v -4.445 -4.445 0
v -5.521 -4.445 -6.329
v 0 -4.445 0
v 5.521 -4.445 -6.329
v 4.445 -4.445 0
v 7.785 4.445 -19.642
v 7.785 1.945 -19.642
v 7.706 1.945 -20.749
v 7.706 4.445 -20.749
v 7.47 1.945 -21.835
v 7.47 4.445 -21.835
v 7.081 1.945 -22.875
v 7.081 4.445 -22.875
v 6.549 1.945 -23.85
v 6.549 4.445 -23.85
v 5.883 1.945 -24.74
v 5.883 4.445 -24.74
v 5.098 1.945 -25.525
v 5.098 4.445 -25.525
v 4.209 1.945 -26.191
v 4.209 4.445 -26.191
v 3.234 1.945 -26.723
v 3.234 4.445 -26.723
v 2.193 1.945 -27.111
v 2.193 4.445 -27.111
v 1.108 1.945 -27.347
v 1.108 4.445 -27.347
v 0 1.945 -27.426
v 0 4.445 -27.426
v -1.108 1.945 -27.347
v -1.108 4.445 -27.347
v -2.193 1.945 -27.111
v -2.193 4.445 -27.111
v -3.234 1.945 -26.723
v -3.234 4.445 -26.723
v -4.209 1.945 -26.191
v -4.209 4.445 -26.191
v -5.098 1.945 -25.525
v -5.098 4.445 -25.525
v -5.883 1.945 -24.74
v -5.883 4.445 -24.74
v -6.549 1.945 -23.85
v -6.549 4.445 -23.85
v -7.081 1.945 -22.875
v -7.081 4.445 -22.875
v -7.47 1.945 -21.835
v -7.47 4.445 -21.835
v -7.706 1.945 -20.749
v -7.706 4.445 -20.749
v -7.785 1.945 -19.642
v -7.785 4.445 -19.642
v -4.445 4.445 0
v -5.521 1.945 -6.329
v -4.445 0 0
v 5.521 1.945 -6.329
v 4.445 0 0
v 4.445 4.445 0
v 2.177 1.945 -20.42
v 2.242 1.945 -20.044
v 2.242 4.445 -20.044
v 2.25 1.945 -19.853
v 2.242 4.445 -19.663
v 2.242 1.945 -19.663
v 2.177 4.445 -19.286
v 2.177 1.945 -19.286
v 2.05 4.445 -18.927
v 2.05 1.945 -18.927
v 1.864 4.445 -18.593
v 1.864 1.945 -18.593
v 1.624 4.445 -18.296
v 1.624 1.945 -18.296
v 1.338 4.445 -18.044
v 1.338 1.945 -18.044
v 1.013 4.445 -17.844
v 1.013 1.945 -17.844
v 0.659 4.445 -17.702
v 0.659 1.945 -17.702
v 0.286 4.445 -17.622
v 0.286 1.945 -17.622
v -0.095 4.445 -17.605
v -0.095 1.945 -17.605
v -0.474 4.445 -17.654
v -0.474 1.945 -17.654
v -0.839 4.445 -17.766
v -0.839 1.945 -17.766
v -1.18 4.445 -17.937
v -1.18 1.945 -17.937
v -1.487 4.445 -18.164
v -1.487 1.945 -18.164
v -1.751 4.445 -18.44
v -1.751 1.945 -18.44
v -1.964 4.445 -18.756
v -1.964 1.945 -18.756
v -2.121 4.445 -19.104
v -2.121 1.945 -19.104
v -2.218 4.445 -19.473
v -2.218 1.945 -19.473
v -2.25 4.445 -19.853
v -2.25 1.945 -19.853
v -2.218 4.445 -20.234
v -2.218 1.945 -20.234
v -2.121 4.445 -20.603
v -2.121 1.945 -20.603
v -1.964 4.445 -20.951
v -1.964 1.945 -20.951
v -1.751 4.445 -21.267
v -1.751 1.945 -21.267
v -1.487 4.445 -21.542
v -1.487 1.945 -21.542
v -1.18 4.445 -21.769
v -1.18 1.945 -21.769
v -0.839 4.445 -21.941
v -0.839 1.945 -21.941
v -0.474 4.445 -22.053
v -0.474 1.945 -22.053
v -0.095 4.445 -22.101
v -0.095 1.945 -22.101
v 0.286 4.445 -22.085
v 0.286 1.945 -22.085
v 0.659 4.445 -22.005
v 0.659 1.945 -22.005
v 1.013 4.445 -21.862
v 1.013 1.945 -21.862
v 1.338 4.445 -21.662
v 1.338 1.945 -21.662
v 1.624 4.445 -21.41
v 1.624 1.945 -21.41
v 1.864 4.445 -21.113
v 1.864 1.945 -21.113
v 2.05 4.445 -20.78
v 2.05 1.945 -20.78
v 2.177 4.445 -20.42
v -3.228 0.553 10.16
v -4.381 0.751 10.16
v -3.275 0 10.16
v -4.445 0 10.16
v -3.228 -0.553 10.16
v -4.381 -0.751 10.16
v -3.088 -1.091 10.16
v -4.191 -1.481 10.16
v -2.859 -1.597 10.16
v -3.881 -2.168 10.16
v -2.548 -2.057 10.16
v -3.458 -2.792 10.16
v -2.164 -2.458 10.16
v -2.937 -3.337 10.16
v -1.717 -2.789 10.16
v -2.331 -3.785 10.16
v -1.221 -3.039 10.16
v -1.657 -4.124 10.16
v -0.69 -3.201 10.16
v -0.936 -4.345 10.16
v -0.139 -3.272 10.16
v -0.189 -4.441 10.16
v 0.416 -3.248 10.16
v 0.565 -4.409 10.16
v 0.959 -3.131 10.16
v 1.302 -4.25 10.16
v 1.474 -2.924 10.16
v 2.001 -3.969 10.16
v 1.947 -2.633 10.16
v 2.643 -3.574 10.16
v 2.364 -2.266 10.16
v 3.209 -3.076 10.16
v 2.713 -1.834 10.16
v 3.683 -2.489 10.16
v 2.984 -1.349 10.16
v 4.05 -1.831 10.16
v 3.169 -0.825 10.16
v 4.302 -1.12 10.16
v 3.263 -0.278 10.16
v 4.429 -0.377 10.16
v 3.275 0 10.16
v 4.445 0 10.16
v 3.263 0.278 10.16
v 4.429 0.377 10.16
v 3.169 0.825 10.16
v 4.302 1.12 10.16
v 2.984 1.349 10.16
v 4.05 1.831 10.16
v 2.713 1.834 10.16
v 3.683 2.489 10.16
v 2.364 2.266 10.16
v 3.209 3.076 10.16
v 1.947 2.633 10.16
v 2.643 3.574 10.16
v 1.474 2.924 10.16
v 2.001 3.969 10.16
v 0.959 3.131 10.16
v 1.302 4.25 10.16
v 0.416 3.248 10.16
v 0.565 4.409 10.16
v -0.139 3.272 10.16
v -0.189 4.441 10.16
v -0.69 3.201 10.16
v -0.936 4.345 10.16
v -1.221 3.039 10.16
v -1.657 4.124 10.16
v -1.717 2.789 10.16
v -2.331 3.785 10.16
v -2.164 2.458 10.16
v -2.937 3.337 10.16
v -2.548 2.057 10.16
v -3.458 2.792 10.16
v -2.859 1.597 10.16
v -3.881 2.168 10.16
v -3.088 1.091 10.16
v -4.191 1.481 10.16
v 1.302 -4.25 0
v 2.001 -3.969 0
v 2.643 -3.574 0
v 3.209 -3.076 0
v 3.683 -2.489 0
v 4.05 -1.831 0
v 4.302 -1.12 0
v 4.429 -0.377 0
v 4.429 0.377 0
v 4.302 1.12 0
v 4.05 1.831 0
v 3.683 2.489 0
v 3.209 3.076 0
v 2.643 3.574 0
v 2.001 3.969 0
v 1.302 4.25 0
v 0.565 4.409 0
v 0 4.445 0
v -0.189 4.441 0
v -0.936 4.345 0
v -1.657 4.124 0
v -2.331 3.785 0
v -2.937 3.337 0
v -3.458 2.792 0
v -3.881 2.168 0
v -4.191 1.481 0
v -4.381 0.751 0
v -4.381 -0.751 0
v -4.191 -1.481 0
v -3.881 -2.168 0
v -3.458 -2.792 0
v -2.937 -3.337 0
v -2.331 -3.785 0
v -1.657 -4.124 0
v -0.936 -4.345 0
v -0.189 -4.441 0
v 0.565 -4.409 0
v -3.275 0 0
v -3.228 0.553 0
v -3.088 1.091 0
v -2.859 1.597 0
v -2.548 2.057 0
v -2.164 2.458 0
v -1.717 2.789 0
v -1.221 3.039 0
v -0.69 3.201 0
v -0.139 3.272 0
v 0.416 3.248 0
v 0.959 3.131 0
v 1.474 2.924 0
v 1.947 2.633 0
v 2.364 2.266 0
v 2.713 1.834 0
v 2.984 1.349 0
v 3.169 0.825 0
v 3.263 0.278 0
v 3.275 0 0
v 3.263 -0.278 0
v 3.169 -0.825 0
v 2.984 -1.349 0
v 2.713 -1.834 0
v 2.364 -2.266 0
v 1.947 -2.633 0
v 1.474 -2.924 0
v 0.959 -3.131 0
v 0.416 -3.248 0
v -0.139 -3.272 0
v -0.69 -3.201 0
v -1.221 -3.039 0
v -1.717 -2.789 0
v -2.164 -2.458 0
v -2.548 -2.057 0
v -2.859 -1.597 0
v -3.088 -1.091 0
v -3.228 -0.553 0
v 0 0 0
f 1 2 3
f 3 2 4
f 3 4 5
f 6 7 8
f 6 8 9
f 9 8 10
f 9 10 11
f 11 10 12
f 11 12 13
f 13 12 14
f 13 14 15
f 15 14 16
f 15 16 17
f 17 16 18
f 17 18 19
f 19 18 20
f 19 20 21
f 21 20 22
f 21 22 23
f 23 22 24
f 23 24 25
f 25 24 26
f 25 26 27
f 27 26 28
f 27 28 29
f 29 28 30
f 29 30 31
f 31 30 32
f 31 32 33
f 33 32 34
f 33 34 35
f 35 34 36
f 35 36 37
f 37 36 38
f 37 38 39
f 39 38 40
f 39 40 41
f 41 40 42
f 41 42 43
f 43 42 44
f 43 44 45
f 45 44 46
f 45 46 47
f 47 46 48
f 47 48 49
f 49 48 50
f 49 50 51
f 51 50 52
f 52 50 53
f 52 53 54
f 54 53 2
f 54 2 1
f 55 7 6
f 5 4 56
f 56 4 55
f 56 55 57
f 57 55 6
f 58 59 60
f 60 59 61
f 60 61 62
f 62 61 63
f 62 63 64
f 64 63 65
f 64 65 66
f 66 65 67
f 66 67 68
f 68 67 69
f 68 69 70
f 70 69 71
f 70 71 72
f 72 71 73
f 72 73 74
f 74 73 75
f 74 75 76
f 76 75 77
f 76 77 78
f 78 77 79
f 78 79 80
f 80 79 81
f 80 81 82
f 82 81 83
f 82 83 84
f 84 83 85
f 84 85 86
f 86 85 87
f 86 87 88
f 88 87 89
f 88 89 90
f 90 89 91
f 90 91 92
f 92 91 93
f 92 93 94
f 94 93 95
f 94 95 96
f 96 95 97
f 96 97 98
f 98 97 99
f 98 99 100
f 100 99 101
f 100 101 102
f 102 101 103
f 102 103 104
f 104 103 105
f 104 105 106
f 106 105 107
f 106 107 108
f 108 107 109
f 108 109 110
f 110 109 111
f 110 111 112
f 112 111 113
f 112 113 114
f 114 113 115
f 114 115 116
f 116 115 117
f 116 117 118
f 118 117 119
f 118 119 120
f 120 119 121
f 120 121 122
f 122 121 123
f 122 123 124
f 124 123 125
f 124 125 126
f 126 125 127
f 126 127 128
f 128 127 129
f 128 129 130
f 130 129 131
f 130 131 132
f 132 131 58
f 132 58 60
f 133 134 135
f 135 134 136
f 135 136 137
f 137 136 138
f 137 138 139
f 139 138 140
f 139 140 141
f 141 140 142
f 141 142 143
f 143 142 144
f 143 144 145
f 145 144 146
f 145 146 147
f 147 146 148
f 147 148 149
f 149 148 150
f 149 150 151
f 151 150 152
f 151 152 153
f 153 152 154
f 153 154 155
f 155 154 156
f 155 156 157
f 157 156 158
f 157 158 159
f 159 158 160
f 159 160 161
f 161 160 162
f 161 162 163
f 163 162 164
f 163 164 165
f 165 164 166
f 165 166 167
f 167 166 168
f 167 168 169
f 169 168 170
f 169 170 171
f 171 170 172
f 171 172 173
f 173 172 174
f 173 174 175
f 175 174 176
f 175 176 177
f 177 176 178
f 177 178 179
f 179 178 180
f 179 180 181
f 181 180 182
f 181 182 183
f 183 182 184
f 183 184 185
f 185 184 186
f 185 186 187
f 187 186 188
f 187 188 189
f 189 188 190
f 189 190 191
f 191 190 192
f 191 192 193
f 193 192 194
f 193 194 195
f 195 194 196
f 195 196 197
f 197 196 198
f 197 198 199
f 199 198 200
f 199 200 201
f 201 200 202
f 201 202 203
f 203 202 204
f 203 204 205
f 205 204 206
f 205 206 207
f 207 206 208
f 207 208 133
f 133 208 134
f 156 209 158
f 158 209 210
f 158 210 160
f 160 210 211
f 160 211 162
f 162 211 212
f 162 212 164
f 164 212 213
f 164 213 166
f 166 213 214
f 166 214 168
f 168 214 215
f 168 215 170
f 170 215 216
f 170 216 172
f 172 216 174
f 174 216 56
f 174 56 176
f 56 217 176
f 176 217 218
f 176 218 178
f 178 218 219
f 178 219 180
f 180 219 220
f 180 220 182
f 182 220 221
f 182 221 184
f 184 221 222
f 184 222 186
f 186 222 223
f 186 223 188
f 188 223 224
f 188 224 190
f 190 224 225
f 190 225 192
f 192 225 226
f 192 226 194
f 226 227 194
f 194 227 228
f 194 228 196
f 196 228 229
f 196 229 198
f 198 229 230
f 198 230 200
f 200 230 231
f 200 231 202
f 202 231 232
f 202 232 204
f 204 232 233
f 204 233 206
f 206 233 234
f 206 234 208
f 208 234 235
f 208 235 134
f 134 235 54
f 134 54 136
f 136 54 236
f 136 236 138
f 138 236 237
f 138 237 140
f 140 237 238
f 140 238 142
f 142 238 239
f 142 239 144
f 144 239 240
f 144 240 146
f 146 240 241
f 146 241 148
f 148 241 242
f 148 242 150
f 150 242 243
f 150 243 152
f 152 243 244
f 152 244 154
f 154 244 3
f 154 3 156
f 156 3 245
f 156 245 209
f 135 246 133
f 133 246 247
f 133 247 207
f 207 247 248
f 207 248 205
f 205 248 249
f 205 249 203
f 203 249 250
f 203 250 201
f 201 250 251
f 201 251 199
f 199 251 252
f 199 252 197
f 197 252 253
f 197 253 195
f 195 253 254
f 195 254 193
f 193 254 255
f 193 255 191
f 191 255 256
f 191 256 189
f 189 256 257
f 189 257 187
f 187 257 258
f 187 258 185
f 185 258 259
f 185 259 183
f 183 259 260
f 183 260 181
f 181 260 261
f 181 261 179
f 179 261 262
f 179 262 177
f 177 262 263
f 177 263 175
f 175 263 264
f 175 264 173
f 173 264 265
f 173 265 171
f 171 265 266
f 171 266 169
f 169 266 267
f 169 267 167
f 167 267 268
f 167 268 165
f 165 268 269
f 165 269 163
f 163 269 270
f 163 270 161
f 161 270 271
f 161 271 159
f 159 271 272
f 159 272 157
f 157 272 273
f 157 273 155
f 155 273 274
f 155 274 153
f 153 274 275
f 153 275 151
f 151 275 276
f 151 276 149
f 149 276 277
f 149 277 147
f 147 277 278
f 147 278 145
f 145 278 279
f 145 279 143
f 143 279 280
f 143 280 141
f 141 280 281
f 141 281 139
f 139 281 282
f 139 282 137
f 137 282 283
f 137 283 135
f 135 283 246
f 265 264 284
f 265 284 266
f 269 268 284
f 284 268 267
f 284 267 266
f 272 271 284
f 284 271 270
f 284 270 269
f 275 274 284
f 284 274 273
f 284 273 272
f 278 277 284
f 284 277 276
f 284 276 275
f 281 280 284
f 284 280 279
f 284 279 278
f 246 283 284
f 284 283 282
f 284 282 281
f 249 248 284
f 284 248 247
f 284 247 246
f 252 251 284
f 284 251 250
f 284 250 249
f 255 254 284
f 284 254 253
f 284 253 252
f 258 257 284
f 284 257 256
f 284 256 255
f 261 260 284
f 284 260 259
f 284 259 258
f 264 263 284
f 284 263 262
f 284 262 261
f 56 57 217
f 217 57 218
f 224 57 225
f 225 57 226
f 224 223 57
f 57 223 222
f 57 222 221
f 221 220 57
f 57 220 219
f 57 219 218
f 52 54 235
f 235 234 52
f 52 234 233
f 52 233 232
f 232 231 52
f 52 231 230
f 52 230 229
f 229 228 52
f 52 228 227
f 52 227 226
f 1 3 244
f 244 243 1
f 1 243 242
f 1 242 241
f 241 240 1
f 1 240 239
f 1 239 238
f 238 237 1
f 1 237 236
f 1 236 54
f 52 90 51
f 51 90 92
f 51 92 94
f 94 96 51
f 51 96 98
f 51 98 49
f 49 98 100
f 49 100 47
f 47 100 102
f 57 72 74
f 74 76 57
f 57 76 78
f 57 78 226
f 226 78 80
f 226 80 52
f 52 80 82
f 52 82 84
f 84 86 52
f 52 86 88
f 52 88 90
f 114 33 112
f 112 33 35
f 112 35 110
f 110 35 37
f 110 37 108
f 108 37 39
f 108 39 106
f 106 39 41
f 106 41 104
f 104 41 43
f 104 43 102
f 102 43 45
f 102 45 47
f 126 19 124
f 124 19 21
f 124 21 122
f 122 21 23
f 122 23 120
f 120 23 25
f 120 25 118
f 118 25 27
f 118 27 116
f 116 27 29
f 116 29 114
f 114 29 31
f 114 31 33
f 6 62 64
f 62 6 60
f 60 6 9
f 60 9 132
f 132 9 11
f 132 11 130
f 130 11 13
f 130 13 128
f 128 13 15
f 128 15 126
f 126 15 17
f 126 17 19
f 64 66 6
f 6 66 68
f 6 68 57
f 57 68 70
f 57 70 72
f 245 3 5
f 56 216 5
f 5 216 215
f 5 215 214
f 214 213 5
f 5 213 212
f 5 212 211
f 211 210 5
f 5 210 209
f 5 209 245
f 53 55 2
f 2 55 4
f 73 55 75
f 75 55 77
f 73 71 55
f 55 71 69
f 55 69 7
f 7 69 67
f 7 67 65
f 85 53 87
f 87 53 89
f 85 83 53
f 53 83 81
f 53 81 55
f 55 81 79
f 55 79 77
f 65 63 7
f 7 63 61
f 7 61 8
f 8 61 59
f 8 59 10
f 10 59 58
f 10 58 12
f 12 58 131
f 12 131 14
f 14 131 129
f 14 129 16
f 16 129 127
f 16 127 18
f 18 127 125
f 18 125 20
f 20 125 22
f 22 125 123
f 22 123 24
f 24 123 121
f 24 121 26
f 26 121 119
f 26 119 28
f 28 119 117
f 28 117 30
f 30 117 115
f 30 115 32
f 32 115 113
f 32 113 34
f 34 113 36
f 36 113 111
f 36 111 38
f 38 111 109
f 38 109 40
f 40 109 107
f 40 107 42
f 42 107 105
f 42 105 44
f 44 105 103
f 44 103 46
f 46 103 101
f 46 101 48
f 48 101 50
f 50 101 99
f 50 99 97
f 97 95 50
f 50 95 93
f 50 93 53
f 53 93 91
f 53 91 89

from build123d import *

# Parameters (mm, degrees)
SKETCH1_R           = 4.445
SKETCH1_R_2         = 3.275000003
BOSS_EXTRUDE1_DEPTH = 10.16
SKETCH2_W           = 8.89
SKETCH2_H           = 8.89
BOSS_EXTRUDE2_DEPTH = 25.4
BOSS_EXTRUDE3_REACH = 29.275
SKETCH9_R           = 2.2499955
CUT_EXTRUDE1_DEPTH  = 30.863820986
SKETCH11_R          = 2.2499955
CUT_EXTRUDE4_DEPTH  = 6.38999992


with BuildPart() as part:
    # Sketch1 → Boss-Extrude1 (new body)
    with BuildSketch(Plane.XY):
        Circle(SKETCH1_R)
        Circle(SKETCH1_R_2, mode=Mode.SUBTRACT)
    extrude(amount=BOSS_EXTRUDE1_DEPTH)

    # Sketch2 → Boss-Extrude2 (add)
    with BuildSketch(Plane(origin=(0, 0, 0), x_dir=(-1, 0, 0), z_dir=(0, 0, -1))):
        Rectangle(SKETCH2_W, SKETCH2_H)
    extrude(amount=BOSS_EXTRUDE2_DEPTH)

    # Boss-Extrude3: up to this face of the body (flat: up to its plane)
    boss_extrude3_end = Plane(part.part.faces().sort_by_distance((0, 4.445, -12.7))[0])
    # Sketch8 → Boss-Extrude3 (add, up to the picked face)
    with BuildSketch(Plane(origin=(0, -4.445, 0), x_dir=(-1, 0, 0), z_dir=(0, -1, 0)), mode=Mode.PRIVATE) as boss_extrude3_sk1:
        with BuildLine():
            Line((7.784941034, 19.641513294), (4.445, 0))
            Line((4.445, 0), (-4.445, 0))
            Line((-4.445, 0), (-7.784941034, 19.641513294))
            ThreePointArc((-7.784941034, 19.641513294), (0, 27.426454328), (7.784941034, 19.641513294))
        make_face()
    boss_extrude3_tool1 = split(extrude(boss_extrude3_sk1.sketch, amount=-BOSS_EXTRUDE3_REACH, mode=Mode.PRIVATE), bisect_by=boss_extrude3_end, keep=Keep.BOTH, mode=Mode.PRIVATE)
    add(boss_extrude3_tool1.solids().sort_by(Axis((0, -4.445, -14.186159), (0, 1, 0)))[0])

    # Sketch9 → Cut-Extrude1 (cut, through all)
    with BuildSketch(Plane(origin=(0, 4.445, 0), x_dir=(1, 0, 0), z_dir=(0, 1, 0))):
        with Locations(Location((0, 19.853346126, 0), (0, 0, 180))):
            Circle(SKETCH9_R)
    extrude(amount=-CUT_EXTRUDE1_DEPTH, mode=Mode.SUBTRACT)

    # Sketch11 → Cut-Extrude4 (cut)
    with BuildSketch(Plane.XZ.offset(4.445)):
        with BuildLine():
            Line((5.521223684, -6.329052393), (-5.521223684, -6.329052393))
            Line((-5.521223684, -6.329052393), (-7.784941034, -19.641513294))
            ThreePointArc((-7.784941034, -19.641513294), (0, -27.426454328), (7.784941034, -19.641513294))
            Line((7.784941034, -19.641513294), (5.521223684, -6.329052393))
        make_face()
        with Locations(Location((0, -19.853346126, 0), (0, 0, 180))):
            Circle(SKETCH11_R, mode=Mode.SUBTRACT)
    extrude(amount=-CUT_EXTRUDE4_DEPTH, mode=Mode.SUBTRACT)


solid = part.part
